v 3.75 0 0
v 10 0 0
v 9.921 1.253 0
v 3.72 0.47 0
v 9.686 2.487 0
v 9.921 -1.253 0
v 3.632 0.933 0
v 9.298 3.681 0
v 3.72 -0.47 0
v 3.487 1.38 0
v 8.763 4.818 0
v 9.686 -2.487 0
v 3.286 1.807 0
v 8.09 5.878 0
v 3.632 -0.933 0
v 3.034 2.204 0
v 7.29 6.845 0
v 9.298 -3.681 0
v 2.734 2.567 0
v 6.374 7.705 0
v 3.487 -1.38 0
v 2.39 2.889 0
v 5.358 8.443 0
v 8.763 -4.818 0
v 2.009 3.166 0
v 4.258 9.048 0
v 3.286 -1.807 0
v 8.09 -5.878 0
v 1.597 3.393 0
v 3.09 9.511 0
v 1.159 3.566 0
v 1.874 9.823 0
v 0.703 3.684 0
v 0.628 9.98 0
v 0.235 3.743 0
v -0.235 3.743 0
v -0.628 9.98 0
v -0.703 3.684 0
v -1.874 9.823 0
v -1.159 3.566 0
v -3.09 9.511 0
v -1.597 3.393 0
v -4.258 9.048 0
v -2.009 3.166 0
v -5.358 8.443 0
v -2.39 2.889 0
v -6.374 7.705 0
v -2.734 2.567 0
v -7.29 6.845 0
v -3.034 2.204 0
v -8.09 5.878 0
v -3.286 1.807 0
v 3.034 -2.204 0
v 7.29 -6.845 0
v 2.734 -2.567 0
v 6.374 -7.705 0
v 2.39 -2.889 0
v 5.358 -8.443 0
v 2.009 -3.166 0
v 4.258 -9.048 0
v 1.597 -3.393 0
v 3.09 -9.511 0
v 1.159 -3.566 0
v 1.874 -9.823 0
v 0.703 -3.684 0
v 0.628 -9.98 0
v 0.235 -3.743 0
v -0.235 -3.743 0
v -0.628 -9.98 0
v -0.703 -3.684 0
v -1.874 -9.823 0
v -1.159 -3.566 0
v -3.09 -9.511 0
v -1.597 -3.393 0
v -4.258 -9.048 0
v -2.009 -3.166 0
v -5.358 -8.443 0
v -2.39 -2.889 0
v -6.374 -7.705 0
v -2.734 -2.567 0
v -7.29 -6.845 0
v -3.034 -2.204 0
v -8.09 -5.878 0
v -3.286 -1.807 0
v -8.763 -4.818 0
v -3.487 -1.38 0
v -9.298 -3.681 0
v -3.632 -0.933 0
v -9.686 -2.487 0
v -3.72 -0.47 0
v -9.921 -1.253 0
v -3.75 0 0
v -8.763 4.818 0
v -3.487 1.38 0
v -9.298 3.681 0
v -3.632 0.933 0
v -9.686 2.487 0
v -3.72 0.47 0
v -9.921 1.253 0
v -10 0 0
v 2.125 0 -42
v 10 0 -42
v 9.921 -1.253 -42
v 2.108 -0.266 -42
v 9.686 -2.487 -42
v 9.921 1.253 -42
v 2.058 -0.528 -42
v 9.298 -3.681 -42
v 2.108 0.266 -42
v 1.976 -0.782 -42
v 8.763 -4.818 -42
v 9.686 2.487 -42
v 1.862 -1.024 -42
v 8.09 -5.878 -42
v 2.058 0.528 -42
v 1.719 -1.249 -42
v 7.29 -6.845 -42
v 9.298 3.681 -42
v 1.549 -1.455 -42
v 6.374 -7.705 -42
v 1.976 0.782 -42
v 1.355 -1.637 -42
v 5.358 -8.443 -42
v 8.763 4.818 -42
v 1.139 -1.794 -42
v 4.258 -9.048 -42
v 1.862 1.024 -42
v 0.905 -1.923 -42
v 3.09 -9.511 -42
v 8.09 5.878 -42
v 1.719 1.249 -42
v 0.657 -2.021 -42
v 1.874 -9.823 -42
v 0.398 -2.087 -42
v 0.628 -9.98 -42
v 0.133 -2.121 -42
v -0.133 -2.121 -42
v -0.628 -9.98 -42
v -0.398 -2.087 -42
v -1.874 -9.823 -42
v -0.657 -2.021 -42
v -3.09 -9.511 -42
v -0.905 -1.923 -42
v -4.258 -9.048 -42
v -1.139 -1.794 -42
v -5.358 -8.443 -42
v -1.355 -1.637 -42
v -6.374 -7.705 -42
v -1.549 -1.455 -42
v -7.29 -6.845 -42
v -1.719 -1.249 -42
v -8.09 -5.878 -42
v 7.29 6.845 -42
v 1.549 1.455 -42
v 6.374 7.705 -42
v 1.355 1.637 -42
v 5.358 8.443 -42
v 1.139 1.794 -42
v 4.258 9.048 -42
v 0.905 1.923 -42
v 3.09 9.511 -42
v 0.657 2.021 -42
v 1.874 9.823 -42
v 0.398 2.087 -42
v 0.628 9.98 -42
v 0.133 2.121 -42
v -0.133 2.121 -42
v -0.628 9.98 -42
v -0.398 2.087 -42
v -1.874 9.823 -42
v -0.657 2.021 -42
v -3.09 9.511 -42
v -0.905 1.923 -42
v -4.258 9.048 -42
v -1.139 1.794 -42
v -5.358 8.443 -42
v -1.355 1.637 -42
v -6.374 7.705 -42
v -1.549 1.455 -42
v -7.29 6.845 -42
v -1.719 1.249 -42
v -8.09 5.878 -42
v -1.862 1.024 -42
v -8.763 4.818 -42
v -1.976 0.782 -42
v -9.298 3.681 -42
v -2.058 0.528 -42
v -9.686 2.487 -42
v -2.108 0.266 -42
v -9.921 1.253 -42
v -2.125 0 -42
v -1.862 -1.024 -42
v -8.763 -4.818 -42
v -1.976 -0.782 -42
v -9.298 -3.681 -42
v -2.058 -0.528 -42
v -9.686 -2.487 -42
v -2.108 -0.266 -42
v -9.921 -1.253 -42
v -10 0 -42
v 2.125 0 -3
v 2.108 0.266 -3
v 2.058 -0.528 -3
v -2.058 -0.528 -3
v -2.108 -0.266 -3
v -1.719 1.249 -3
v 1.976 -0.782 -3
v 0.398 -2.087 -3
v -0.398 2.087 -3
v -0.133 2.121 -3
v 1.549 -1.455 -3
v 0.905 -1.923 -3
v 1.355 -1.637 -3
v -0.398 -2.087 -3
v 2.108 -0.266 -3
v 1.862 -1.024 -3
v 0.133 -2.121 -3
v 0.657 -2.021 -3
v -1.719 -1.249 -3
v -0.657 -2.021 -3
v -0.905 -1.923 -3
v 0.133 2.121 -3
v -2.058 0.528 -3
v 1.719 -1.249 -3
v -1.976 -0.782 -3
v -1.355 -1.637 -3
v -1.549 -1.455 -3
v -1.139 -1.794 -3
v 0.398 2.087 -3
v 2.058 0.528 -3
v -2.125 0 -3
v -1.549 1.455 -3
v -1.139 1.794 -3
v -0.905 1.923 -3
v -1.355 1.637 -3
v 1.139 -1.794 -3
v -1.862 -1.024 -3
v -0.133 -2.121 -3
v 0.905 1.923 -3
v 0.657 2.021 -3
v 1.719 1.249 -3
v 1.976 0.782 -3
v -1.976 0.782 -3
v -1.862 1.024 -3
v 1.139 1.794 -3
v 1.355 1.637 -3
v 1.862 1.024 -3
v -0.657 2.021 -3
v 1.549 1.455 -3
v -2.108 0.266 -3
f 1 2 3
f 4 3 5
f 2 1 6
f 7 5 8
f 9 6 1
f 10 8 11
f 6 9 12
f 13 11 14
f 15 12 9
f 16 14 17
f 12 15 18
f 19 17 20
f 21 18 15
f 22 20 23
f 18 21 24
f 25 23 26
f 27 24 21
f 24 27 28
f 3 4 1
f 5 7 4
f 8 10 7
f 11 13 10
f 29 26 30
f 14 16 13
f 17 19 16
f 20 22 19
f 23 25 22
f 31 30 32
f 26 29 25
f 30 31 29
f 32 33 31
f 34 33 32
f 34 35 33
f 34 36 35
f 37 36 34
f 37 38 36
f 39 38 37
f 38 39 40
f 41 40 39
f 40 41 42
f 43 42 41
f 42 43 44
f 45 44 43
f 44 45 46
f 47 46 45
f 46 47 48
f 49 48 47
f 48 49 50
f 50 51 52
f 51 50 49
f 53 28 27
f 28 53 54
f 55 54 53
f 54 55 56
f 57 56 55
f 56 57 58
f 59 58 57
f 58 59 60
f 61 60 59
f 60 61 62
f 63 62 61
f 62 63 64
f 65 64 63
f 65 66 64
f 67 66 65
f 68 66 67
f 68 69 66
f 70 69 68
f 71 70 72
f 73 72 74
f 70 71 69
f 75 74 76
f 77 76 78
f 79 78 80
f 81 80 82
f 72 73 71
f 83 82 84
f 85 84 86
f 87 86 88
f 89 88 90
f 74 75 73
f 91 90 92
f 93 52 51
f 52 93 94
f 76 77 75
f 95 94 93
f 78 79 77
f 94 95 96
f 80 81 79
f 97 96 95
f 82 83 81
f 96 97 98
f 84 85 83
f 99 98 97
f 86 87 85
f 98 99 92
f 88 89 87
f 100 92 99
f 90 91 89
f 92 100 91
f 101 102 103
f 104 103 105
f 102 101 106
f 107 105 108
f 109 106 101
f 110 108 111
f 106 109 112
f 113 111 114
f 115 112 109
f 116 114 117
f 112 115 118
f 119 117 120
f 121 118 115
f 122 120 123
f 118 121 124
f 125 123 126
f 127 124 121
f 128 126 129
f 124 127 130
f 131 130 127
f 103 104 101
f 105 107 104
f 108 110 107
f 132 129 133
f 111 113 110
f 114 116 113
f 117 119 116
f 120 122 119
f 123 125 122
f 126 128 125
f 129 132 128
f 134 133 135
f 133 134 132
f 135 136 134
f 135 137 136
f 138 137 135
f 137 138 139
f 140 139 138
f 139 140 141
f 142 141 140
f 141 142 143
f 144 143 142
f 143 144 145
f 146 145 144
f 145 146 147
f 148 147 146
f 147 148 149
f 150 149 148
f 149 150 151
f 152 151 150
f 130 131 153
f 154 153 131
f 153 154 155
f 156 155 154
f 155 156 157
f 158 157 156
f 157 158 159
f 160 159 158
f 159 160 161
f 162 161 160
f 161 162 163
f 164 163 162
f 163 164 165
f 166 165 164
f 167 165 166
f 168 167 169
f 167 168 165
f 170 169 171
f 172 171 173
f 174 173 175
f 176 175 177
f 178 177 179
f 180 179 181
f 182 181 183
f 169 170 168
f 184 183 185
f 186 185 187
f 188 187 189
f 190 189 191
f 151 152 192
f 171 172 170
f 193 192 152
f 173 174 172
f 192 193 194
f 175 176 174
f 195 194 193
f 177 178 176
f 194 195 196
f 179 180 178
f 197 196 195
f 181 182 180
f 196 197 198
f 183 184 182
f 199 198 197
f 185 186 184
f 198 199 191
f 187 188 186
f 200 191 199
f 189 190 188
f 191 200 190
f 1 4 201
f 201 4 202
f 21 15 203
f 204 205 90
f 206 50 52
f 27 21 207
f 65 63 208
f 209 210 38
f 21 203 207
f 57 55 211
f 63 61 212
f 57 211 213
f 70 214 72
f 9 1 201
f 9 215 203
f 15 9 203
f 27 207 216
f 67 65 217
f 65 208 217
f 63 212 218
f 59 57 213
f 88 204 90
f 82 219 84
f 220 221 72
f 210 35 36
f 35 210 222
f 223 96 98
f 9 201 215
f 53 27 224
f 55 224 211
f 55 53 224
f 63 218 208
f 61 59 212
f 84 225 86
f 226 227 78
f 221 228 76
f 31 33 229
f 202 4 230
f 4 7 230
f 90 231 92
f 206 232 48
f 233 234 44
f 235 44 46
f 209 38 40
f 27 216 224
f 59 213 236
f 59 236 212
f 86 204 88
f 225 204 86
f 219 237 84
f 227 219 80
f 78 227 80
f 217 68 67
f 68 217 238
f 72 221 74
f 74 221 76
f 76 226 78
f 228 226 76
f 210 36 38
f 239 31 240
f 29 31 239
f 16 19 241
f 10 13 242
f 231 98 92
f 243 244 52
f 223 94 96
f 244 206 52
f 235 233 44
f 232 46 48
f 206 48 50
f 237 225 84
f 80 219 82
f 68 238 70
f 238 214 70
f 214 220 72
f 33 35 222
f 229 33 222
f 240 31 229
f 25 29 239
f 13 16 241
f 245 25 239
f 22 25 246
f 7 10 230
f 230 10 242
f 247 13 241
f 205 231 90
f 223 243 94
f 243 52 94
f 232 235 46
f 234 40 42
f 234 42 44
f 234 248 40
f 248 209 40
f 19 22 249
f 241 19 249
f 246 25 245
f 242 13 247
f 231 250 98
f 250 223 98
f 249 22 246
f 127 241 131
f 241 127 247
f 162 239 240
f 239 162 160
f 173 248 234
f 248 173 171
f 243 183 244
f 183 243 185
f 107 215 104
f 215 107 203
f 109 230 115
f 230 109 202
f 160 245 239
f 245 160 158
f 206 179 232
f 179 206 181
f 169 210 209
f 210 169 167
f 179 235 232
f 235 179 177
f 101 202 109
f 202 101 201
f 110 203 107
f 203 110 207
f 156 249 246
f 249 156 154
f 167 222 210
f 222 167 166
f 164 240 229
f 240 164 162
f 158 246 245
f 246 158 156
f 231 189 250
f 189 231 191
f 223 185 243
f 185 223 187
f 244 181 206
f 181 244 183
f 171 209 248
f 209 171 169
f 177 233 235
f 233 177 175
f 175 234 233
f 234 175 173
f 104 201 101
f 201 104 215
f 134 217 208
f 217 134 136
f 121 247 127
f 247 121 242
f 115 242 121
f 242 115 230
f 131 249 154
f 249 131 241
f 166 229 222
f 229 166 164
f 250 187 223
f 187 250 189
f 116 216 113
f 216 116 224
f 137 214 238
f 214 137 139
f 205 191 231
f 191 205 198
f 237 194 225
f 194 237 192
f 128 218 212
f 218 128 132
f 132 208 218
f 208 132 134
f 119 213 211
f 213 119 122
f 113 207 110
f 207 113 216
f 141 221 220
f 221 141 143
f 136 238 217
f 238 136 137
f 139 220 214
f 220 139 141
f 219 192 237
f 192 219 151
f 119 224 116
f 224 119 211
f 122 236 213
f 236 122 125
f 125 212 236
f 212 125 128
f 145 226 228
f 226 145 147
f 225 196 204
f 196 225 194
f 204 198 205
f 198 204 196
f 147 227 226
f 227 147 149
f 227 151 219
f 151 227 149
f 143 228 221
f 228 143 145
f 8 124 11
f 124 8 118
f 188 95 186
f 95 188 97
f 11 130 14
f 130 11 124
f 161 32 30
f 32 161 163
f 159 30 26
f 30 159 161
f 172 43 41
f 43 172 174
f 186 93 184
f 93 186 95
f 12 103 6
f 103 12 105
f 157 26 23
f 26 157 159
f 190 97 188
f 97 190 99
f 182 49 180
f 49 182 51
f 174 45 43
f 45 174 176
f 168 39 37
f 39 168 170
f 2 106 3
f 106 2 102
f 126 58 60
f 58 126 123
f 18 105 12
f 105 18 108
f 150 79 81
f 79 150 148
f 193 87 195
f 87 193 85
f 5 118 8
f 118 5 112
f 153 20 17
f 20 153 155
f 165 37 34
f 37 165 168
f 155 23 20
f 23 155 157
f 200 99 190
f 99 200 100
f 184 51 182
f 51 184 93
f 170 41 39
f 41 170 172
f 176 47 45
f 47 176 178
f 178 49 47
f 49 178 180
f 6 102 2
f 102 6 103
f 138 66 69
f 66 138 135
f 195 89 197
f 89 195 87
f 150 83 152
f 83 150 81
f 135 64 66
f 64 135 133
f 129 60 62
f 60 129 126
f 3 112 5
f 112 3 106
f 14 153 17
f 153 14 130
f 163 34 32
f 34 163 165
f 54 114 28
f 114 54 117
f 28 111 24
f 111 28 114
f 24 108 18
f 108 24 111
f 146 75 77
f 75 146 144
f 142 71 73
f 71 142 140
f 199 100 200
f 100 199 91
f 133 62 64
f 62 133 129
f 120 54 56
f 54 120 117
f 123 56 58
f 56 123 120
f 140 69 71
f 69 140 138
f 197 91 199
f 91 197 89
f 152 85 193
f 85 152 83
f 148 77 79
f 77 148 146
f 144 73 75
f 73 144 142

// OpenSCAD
$fn = 50;


difference() {
	union() {
		translate(v = [0, 0, -42.0000000000]) {
			cylinder(h = 42, r = 10.0000000000);
		}
		cylinder(h = 0, r = 16.0000000000);
	}
	union() {
		translate(v = [0, 0, 0]) {
			rotate(a = [0, 0, 0]) {
				difference() {
					union() {
						#translate(v = [0, 0, -42.0000000000]) {
							cylinder(h = 42, r = 2.0000000000);
						}
						#translate(v = [0, 0, -3]) {
							cylinder(h = 3, r = 10.0000000000, r1 = 2.1250000000, r2 = 3.7500000000);
						}
						#translate(v = [0, 0, -42.0000000000]) {
							cylinder(h = 42, r = 2.1250000000);
						}
						#translate(v = [0, 0, -42.0000000000]) {
							cylinder(h = 42, r = 2.0000000000);
						}
					}
					union();
				}
			}
		}
	}
}
